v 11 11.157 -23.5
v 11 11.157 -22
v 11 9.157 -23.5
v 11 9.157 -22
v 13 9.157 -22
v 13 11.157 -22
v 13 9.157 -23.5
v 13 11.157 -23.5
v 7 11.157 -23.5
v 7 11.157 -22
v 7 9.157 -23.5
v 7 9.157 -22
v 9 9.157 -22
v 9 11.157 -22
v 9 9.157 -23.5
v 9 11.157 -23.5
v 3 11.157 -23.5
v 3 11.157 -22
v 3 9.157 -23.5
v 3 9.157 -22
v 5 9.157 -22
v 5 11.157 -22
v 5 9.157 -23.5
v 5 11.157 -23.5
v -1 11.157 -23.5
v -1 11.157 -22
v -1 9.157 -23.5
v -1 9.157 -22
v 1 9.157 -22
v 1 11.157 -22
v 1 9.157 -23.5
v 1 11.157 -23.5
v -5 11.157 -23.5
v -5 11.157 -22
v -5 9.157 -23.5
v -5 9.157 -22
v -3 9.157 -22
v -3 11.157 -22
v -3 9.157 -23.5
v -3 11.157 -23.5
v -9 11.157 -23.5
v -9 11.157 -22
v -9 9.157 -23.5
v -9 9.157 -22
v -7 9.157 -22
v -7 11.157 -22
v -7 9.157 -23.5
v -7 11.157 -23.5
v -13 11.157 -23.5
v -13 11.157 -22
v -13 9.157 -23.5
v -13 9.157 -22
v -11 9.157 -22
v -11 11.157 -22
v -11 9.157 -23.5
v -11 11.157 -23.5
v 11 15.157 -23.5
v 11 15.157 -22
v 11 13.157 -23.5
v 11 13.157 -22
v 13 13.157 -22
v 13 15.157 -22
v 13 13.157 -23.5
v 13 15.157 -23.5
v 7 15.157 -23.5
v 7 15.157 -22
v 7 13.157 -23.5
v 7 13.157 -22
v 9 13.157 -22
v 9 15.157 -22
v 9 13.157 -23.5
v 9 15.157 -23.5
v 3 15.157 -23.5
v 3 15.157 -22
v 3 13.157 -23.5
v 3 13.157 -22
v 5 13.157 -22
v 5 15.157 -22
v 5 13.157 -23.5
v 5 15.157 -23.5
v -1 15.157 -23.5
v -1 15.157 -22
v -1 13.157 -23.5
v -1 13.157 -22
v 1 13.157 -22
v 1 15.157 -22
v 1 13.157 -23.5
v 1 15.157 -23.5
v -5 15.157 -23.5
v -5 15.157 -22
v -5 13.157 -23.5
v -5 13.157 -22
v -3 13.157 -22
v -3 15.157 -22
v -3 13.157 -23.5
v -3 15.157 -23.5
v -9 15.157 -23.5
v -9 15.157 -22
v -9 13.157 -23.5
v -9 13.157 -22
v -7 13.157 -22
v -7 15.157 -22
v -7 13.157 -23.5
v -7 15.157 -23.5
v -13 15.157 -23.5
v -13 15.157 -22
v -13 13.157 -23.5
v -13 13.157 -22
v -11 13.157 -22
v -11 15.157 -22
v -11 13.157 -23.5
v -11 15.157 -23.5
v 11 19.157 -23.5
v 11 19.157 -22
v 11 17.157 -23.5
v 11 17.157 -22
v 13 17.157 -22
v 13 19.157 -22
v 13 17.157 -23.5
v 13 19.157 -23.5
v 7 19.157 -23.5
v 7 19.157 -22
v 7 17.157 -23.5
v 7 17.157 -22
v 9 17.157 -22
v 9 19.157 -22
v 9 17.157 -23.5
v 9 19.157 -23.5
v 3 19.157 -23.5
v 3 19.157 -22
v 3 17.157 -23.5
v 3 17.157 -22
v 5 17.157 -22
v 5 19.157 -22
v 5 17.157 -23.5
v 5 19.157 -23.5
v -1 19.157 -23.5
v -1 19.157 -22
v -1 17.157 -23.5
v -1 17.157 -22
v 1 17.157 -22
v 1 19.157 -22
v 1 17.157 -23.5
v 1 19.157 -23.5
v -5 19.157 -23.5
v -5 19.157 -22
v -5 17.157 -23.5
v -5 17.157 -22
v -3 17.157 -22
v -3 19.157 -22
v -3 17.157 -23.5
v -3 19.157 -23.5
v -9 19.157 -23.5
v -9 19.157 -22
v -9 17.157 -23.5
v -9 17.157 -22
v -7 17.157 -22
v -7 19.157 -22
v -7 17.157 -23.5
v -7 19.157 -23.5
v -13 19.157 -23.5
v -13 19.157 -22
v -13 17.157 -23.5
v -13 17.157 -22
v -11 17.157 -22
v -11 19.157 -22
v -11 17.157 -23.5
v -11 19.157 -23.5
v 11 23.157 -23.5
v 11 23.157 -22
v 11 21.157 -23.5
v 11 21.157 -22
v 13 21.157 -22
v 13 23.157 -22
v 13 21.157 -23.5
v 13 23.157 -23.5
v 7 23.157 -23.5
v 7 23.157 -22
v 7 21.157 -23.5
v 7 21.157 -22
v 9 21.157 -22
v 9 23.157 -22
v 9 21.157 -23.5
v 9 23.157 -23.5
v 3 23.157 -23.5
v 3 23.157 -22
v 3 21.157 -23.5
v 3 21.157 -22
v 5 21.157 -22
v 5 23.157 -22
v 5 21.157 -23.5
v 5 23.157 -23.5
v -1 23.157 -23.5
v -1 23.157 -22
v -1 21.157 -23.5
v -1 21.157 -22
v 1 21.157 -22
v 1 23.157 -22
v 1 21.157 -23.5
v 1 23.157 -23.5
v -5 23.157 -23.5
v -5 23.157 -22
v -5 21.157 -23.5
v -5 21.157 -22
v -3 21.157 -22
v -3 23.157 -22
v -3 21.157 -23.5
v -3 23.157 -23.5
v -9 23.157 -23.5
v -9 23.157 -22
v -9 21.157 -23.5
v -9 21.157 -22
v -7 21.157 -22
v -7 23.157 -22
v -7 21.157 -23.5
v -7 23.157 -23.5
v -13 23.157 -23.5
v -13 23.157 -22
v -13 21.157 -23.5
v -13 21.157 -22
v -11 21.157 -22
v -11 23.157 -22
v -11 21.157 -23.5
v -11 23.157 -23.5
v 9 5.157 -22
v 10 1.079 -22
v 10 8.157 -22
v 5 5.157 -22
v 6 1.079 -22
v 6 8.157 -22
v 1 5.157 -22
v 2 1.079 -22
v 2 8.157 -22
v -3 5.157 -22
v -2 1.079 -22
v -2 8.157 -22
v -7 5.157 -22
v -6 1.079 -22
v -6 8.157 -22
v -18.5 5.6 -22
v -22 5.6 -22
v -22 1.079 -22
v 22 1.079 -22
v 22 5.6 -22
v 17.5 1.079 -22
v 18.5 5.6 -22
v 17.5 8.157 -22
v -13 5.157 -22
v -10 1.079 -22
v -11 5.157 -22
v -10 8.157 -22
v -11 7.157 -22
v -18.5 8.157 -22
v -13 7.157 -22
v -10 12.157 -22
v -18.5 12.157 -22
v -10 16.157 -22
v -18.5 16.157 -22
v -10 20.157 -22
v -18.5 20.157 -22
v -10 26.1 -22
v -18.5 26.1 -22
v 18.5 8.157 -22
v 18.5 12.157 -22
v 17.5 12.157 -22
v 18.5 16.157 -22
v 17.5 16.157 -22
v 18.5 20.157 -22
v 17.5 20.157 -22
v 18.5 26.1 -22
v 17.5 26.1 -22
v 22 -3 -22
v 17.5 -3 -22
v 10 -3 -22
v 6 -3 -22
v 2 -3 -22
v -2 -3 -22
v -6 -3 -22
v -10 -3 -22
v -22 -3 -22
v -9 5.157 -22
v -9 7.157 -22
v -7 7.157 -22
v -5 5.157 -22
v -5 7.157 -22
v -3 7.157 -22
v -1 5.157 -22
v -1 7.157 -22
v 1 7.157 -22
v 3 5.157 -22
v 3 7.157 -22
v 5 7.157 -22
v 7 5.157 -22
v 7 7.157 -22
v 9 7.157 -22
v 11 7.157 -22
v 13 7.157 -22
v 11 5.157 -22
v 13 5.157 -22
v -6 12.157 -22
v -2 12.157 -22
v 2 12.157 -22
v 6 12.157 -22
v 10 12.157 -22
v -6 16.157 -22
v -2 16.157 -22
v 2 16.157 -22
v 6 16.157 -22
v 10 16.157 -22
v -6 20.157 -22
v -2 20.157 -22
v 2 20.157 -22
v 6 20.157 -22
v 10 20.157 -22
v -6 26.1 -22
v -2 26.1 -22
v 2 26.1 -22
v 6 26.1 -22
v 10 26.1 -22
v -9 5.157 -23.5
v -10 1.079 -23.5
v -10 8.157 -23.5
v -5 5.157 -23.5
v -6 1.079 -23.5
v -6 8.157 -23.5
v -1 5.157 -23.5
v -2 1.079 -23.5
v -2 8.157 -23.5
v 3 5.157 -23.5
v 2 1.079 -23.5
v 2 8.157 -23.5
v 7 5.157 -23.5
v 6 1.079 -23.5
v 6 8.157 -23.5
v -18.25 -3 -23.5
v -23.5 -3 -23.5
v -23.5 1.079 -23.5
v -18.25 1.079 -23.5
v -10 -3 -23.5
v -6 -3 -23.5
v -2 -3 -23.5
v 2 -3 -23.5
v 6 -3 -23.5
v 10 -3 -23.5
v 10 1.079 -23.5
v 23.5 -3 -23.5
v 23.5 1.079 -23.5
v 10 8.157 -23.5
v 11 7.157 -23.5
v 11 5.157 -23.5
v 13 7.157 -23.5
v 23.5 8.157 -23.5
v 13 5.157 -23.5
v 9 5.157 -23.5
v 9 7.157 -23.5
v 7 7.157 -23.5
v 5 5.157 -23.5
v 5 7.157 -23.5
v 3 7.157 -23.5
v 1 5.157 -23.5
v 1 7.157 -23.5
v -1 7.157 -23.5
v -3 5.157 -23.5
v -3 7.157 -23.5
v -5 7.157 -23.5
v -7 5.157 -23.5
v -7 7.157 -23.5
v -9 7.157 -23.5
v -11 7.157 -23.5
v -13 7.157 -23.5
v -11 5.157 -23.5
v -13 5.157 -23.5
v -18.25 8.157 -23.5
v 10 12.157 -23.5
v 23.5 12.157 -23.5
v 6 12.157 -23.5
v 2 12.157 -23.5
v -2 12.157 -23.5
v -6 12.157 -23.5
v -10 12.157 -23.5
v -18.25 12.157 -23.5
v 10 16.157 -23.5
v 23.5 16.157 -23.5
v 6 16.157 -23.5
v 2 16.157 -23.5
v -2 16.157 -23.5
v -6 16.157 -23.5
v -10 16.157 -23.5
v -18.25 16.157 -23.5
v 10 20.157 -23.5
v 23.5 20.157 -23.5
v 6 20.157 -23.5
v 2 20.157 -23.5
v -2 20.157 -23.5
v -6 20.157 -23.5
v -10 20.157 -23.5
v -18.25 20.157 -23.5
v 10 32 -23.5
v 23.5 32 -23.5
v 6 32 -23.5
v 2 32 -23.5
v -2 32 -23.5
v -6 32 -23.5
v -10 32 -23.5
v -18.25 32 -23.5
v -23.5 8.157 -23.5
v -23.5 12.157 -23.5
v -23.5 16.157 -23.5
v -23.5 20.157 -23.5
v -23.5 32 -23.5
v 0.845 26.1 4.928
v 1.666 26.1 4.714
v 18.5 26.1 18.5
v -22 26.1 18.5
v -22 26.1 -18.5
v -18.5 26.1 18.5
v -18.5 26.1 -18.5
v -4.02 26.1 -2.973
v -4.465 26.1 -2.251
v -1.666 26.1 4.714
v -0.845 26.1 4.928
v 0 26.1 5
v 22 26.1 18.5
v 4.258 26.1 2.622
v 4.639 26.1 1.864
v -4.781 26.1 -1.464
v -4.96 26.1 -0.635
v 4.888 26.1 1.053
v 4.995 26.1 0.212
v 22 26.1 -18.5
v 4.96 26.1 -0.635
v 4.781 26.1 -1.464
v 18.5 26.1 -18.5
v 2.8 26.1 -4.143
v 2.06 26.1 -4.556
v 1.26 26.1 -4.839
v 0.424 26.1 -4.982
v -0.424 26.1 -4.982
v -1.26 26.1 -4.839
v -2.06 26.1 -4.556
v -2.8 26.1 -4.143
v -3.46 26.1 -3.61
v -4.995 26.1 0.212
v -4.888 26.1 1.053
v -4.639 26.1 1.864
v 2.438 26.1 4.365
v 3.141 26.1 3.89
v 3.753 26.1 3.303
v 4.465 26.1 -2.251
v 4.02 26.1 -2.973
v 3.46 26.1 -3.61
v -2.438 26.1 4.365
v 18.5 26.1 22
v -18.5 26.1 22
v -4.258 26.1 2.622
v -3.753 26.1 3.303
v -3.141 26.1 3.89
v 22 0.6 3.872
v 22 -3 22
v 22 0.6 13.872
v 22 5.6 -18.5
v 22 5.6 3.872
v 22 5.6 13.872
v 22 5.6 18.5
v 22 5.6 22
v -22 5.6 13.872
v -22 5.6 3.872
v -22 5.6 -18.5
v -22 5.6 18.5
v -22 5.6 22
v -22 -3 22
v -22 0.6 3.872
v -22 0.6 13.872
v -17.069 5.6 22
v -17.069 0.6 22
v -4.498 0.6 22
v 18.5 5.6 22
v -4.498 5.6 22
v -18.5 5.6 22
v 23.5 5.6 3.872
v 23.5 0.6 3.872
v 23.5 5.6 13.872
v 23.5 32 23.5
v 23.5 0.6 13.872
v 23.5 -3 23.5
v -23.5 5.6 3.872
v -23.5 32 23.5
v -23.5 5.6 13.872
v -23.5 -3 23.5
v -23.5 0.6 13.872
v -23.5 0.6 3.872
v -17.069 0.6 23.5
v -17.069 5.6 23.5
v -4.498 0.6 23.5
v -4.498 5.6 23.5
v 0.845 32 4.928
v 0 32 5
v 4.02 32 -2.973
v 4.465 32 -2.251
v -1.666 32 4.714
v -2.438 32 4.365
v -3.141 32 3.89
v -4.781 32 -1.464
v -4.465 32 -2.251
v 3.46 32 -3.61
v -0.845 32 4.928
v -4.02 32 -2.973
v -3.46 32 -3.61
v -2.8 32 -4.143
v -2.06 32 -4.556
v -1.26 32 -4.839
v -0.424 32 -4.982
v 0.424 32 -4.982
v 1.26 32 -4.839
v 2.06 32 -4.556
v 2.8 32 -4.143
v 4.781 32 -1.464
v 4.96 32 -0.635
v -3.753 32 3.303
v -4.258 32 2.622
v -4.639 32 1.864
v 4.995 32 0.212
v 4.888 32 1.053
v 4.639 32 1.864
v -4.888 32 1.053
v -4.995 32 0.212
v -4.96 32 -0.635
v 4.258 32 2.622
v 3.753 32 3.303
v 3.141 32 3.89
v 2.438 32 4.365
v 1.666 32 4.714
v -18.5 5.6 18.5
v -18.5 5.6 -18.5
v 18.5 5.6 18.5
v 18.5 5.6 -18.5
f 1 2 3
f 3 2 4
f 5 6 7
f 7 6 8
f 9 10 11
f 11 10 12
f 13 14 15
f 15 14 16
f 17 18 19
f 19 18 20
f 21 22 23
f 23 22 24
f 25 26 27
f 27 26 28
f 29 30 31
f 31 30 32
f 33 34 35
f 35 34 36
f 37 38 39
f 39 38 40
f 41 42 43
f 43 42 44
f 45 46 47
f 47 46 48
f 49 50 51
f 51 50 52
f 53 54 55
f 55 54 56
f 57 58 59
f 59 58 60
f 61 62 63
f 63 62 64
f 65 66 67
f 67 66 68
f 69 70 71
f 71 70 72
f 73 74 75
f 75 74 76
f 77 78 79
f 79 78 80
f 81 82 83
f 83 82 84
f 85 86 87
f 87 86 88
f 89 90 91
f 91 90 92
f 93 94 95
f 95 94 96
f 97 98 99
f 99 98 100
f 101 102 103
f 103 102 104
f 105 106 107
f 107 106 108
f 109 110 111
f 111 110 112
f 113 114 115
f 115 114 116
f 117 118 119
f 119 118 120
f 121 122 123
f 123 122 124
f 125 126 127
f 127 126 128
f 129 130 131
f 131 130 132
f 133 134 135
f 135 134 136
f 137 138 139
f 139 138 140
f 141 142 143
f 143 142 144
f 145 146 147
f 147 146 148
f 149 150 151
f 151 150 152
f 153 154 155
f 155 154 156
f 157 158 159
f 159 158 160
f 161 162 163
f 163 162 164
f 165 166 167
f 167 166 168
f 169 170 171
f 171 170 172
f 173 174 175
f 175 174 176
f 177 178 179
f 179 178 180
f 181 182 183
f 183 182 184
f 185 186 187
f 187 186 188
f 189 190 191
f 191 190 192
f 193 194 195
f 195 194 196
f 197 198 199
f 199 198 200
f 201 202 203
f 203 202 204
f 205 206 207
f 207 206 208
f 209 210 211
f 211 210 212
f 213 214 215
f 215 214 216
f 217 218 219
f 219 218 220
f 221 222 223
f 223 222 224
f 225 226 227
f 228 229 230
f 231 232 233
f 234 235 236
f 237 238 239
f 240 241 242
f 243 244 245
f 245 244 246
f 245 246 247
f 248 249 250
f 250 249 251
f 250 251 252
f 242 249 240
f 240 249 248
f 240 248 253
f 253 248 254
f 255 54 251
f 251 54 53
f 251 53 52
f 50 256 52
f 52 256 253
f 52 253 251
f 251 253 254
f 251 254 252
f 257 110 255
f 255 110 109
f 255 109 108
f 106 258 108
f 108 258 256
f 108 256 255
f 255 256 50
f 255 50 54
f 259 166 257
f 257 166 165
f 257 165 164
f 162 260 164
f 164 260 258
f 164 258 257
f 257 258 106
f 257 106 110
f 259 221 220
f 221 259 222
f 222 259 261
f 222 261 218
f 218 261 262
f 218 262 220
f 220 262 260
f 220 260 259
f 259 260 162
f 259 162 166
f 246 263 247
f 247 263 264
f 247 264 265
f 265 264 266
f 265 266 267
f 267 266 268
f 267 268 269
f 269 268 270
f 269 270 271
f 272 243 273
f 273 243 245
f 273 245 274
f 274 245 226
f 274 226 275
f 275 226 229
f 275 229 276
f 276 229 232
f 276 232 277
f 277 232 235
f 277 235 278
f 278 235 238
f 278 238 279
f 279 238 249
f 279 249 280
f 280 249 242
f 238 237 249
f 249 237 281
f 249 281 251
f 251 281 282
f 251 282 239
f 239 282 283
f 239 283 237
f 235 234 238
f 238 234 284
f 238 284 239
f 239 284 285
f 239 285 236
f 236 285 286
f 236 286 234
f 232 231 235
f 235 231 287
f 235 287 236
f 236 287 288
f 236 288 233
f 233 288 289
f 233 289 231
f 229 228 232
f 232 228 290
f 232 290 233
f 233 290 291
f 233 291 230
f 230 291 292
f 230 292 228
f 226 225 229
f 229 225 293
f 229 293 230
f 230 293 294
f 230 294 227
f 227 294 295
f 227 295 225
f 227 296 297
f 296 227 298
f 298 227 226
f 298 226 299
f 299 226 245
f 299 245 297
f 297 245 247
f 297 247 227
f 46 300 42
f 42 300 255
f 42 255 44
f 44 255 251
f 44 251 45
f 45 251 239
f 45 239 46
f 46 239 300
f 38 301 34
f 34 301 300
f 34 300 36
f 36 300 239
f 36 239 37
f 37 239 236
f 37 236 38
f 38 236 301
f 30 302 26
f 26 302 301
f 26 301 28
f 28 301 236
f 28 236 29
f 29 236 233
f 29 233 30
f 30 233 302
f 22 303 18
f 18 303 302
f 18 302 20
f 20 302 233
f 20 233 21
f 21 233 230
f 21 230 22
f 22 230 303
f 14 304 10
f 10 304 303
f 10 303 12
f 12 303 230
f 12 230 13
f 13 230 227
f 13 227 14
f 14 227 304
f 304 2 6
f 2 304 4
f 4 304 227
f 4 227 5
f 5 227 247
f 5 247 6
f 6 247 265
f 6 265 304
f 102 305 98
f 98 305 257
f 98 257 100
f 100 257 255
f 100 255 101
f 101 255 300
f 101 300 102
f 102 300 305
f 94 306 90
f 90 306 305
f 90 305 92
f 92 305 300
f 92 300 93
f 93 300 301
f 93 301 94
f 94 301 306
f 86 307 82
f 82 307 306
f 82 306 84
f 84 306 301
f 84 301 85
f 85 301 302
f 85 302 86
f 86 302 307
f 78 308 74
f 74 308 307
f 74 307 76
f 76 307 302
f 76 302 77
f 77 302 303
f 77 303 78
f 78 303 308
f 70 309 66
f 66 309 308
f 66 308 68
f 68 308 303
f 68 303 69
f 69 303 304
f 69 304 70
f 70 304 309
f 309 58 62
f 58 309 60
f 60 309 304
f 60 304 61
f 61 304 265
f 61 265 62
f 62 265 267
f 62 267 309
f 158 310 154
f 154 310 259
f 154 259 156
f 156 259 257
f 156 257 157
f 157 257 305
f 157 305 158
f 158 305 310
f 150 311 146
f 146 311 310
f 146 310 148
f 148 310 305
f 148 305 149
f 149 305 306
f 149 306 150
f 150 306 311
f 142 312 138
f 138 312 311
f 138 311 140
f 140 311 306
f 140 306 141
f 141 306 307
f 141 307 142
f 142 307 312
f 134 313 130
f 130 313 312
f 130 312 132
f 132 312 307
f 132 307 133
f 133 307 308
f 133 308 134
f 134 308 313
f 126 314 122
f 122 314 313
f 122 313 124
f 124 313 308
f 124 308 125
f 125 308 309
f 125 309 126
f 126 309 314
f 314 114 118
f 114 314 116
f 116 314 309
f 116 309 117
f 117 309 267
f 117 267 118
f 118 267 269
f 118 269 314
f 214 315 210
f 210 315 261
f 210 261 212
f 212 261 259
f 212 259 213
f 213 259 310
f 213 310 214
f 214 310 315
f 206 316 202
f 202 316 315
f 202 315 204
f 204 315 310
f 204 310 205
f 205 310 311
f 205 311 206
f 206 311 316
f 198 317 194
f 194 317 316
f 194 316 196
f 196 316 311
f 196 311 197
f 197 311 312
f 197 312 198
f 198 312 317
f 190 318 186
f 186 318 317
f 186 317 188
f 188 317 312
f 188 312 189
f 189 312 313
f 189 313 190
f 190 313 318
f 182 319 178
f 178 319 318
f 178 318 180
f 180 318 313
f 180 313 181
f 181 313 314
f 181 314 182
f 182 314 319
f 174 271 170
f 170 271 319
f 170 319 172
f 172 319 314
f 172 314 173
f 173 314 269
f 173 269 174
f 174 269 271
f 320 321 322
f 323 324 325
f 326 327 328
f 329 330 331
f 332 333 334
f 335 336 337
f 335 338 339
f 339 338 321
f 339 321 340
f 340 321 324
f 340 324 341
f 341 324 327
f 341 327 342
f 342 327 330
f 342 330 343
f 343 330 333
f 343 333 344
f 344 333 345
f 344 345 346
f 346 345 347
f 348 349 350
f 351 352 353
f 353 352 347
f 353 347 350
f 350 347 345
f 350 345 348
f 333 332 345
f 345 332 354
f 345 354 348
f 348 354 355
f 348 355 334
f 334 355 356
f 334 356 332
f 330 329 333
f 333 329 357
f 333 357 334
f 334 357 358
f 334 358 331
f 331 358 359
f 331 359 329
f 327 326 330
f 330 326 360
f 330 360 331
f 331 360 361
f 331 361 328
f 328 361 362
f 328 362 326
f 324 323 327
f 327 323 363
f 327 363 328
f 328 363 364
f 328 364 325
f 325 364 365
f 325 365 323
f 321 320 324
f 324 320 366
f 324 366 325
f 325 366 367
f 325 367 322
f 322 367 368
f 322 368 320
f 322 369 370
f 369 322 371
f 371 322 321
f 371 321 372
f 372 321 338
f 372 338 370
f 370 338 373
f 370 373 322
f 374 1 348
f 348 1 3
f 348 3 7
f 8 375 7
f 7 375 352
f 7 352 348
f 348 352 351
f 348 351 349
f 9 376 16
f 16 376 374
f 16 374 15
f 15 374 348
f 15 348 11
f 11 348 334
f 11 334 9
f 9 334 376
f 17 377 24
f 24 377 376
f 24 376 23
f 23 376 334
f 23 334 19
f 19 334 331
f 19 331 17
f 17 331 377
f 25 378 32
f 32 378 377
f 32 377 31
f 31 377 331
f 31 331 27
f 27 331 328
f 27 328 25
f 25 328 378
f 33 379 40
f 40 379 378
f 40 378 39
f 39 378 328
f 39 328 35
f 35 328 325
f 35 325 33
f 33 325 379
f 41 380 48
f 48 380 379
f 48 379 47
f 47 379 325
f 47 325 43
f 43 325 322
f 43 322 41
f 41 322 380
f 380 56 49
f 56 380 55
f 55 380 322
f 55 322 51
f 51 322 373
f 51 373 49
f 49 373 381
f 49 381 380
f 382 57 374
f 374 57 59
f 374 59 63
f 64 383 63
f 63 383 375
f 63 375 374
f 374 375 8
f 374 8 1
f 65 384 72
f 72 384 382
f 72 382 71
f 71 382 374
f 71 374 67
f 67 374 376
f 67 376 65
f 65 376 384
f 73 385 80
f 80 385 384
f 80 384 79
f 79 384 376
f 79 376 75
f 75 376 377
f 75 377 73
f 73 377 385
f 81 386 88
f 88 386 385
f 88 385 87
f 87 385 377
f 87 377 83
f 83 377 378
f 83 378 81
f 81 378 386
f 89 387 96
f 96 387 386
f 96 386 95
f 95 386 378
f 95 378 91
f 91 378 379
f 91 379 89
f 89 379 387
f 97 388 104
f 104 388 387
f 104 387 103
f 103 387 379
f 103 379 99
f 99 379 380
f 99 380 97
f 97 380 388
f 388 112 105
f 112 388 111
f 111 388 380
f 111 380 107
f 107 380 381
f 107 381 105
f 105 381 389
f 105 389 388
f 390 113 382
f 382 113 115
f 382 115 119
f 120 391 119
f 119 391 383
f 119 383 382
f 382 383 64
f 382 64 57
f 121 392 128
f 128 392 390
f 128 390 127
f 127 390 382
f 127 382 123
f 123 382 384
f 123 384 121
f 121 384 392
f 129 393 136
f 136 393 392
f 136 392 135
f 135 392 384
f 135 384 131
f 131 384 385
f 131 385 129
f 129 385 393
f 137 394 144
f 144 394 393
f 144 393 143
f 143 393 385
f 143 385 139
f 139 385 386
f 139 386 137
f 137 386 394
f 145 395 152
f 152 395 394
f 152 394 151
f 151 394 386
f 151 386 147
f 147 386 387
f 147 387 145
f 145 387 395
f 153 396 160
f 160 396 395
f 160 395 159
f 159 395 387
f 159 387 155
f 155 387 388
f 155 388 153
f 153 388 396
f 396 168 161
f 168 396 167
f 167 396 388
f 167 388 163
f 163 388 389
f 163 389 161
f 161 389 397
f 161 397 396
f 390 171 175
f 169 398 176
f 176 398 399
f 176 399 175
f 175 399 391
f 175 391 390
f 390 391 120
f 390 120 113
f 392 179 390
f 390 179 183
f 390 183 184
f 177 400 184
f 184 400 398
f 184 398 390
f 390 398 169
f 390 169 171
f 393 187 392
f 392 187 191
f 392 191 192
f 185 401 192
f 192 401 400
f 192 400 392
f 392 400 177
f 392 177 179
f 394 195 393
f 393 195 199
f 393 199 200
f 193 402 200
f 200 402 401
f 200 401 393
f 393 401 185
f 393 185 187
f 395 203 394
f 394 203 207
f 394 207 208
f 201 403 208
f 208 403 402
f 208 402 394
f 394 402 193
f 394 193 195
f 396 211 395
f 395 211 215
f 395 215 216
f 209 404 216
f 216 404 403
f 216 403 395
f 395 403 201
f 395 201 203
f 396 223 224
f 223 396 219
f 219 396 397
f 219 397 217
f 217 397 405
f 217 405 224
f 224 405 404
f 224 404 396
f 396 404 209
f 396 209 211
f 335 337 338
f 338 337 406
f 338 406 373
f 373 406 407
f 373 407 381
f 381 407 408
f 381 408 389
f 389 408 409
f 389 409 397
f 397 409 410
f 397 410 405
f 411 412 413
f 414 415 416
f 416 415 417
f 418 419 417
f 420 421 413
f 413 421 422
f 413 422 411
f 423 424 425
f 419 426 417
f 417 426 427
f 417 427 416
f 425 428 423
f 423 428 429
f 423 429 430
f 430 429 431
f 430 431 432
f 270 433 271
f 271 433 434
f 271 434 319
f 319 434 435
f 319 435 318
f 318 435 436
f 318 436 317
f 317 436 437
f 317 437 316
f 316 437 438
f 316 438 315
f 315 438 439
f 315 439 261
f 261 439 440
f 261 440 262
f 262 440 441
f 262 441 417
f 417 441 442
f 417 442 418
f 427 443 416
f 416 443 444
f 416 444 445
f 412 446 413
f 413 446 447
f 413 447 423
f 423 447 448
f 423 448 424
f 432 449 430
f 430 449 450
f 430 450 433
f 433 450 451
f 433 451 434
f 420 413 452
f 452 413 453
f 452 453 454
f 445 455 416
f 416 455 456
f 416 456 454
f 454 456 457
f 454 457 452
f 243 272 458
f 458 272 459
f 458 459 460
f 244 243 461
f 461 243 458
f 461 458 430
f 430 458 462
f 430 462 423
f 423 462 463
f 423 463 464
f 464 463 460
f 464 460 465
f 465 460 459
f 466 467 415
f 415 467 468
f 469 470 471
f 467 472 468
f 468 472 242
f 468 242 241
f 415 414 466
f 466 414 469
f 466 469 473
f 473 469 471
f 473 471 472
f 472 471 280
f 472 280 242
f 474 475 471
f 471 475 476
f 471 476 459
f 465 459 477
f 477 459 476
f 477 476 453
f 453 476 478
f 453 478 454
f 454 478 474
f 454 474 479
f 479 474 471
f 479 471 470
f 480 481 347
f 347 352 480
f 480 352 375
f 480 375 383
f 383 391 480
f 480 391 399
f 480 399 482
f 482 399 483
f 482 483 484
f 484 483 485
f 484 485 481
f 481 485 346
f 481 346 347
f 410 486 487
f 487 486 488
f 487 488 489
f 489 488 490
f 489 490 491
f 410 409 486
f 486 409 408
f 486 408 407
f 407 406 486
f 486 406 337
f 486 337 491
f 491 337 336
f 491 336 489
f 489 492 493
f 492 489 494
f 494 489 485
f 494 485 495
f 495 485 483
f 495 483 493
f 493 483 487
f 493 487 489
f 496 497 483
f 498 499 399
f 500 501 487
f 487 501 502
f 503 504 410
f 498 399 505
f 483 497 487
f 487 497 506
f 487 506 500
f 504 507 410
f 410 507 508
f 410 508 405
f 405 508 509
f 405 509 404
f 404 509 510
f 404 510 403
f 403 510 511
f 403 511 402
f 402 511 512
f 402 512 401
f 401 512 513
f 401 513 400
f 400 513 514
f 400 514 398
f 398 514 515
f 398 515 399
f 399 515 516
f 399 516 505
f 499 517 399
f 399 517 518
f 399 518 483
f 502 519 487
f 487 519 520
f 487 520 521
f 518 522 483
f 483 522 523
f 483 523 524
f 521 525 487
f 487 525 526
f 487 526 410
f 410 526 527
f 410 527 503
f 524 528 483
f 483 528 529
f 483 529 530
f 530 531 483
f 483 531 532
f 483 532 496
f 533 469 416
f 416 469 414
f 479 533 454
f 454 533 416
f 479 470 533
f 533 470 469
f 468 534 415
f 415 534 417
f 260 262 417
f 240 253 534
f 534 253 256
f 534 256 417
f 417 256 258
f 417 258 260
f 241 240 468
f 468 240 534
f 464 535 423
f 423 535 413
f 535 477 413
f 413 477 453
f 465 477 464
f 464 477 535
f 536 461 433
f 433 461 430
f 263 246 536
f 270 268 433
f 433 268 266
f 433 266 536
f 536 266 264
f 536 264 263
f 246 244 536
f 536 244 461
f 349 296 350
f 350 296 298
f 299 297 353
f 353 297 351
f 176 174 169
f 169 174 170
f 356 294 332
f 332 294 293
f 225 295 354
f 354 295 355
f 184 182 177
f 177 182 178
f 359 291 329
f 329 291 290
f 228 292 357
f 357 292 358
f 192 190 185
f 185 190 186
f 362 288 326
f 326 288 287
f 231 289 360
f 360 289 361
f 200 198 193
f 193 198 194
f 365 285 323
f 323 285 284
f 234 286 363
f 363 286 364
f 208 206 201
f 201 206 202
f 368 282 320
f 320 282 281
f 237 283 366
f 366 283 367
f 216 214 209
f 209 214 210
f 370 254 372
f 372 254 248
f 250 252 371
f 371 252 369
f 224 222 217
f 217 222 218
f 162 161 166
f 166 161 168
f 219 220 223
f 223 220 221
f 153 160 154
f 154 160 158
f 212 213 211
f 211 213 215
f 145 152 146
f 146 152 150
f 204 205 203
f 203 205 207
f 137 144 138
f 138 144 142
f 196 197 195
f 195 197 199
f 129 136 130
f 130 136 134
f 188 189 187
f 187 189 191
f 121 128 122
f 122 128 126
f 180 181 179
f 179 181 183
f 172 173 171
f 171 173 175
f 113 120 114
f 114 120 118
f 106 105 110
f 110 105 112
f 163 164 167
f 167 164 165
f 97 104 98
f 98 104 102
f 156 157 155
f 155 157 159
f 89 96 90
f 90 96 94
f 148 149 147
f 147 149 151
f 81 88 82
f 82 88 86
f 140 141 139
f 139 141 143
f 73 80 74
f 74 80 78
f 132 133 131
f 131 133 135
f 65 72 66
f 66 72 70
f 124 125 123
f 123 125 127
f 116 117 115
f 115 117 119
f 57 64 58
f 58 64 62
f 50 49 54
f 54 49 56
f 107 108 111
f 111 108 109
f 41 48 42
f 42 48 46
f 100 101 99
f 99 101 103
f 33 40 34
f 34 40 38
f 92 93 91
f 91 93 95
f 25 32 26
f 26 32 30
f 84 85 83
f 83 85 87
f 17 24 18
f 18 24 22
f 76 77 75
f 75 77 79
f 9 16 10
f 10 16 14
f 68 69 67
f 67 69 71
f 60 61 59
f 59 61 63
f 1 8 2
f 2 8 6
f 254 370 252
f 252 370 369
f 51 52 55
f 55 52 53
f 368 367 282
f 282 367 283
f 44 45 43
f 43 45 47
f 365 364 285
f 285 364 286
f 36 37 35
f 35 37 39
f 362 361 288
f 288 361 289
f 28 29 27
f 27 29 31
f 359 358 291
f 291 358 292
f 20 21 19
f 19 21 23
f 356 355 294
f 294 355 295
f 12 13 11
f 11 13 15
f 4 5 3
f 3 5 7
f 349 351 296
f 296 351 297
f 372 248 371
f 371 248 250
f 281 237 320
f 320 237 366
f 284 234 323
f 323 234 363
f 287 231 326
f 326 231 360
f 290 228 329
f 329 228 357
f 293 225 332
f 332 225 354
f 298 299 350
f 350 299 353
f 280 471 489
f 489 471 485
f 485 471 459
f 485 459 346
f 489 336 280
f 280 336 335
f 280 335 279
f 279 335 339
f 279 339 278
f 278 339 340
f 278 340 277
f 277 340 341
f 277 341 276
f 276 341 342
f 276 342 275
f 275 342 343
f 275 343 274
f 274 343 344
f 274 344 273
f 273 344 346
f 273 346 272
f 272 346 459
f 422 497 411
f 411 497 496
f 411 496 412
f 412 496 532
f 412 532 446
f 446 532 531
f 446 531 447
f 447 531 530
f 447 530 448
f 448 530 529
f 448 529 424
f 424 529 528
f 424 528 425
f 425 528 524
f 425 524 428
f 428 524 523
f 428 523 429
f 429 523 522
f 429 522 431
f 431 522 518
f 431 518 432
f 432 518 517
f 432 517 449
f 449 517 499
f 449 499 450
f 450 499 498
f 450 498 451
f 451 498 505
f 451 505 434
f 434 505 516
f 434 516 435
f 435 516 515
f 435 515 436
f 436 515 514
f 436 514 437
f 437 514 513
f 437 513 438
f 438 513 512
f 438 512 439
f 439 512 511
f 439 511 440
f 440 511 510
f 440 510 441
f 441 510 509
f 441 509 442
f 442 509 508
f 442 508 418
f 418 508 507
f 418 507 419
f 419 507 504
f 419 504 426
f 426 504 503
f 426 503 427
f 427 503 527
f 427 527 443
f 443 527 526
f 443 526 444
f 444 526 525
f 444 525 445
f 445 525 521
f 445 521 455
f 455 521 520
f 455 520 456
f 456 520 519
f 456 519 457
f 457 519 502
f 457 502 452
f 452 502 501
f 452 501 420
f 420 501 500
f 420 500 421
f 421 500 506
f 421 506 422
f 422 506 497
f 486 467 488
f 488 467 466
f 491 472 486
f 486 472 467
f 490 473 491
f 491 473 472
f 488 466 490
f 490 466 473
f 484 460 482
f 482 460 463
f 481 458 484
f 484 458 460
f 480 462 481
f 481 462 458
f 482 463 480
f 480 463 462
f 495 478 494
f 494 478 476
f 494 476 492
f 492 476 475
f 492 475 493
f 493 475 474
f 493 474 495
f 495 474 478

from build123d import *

# Parameters (mm, degrees)
SKETCH1_W                                  = 47
SKETCH1_H                                  = 47
BOSS_EXTRUDE1_DEPTH                        = 32
SKETCH2_W                                  = 44
SKETCH2_H                                  = 44
CUT_EXTRUDE1_DEPTH                         = 26.1
SKETCH3_W                                  = 3.5
SKETCH3_H                                  = 3.5
BOSS_EXTRUDE2_DEPTH                        = 20.5
MIRROR1_AT_THE_SECOND_PLANE_COPY_1_SKETC_W = 3.5
MIRROR1_AT_THE_SECOND_PLANE_COPY_1_SKETC_H = 3.5
MIRROR1_AT_THE_SECOND_PLANE_COPY_1_DEPTH   = 20.5
CUT_EXTRUDE3_REACH                         = 63.524
SKETCH4_W                                  = 2
SKETCH4_H                                  = 20
LPATTERN1_COUNT                            = 7
LPATTERN1_PITCH                            = 4
BOSS_EXTRUDE4_START                        = -1.5
SKETCH8_W                                  = 26
SKETCH8_H                                  = 2
BOSS_EXTRUDE4_DEPTH                        = 1.5
LPATTERN2_COUNT                            = 5
LPATTERN2_PITCH                            = 4
SKETCH6_W                                  = 47
SKETCH6_H                                  = 47
SKETCH6_W_2                                = 44
SKETCH6_H_2                                = 44
BOSS_EXTRUDE5_DEPTH                        = 3
SKETCH7_R                                  = 5
CUT_EXTRUDE4_DEPTH                         = 10
SKETCH10_W                                 = 10
SKETCH10_H                                 = 5
CUT_EXTRUDE5_DEPTH                         = 62.524385409
SKETCH12_W                                 = 12.571328749
SKETCH12_H                                 = 5
CUT_EXTRUDE6_DEPTH                         = 10


with BuildPart() as part:
    # Sketch1 → Boss-Extrude1 (new body)
    with BuildSketch(Plane(origin=(0, 0, 0), x_dir=(1, 0, 0), z_dir=(0, 1, 0))):
        Rectangle(SKETCH1_W, SKETCH1_H)
    extrude(amount=BOSS_EXTRUDE1_DEPTH)

    # Sketch2 → Cut-Extrude1 (cut)
    with BuildSketch(Plane.XZ):
        Rectangle(SKETCH2_W, SKETCH2_H)
    extrude(amount=-CUT_EXTRUDE1_DEPTH, mode=Mode.SUBTRACT)

    # Sketch3 → Boss-Extrude2 (add)
    with BuildSketch(Plane.XZ.offset(-26.1)):
        with Locations((-20.25, 20.25)):
            Rectangle(SKETCH3_W, SKETCH3_H)
    boss_extrude2 = extrude(amount=BOSS_EXTRUDE2_DEPTH)

    # Mirror1: Boss-Extrude2 across plane
    add(boss_extrude2.mirror(Plane(origin=(0, 0, 0), x_dir=(0, 0, 1), z_dir=(1, 0, 0))))

    # Mirror1 at the second plane: Boss-Extrude2 across plane
    add(boss_extrude2.mirror(Plane.XY))

    # Mirror1 at the second plane copy 1 sketc → Mirror1 at the second plane copy 1 (add)
    with BuildSketch(Plane(origin=(0, 26.1, 0), x_dir=(-1, 0, 0), z_dir=(0, -1, 0))):
        with Locations((-20.25, 20.25)):
            Rectangle(MIRROR1_AT_THE_SECOND_PLANE_COPY_1_SKETC_W, MIRROR1_AT_THE_SECOND_PLANE_COPY_1_SKETC_H)
    extrude(amount=MIRROR1_AT_THE_SECOND_PLANE_COPY_1_DEPTH)

    # Sketch4 → Cut-Extrude3 (cut, up to next)
    with BuildSketch(Plane(origin=(0, 0, -23.5), x_dir=(-1, 0, 0), z_dir=(0, 0, -1)), mode=Mode.PRIVATE) as cut_extrude3_sk1:
        with Locations((-12, 13.157296847)):
            Rectangle(SKETCH4_W, SKETCH4_H)
    cut_extrude3_tool1 = extrude(cut_extrude3_sk1.sketch, amount=-CUT_EXTRUDE3_REACH, mode=Mode.PRIVATE) & part.part
    cut_extrude3 = cut_extrude3_tool1.solids().sort_by_distance((12, 13.157297, -23.5))[0]
    add(cut_extrude3, mode=Mode.SUBTRACT)

    # LPattern1: Cut-Extrude3 ×7
    with Locations(*[(-i * LPATTERN1_PITCH, 0, 0) for i in range(1, LPATTERN1_COUNT)]):
        add(cut_extrude3, mode=Mode.SUBTRACT)

    # Sketch8 → Boss-Extrude4 (add)
    with BuildSketch(Plane(origin=(0, 0, -23.5), x_dir=(-1, 0, 0), z_dir=(0, 0, -1)).offset(BOSS_EXTRUDE4_START)):
        with Locations((0, 20.157296847)):
            Rectangle(SKETCH8_W, SKETCH8_H)
    boss_extrude4 = extrude(amount=BOSS_EXTRUDE4_DEPTH)

    # LPattern2: Boss-Extrude4 ×5
    with Locations(*[(0, -i * LPATTERN2_PITCH, 0) for i in range(1, LPATTERN2_COUNT)]):
        add(boss_extrude4)

    # Sketch6 → Boss-Extrude5 (add)
    with BuildSketch(Plane.XZ):
        Rectangle(SKETCH6_W, SKETCH6_H)
        Rectangle(SKETCH6_W_2, SKETCH6_H_2, mode=Mode.SUBTRACT)
    extrude(amount=BOSS_EXTRUDE5_DEPTH)

    # Sketch7 → Cut-Extrude4 (cut)
    with BuildSketch(Plane(origin=(0, 32, 0), x_dir=(1, 0, 0), z_dir=(0, 1, 0))):
        with Locations(Location((0, 0, 0), (0, 0, 270))):
            Circle(SKETCH7_R)
    extrude(amount=-CUT_EXTRUDE4_DEPTH, mode=Mode.SUBTRACT)

    # Sketch10 → Cut-Extrude5 (cut, through all)
    with BuildSketch(Plane.ZY.offset(23.5)):
        with Locations((8.871811033, 3.1)):
            Rectangle(SKETCH10_W, SKETCH10_H)
    extrude(amount=-CUT_EXTRUDE5_DEPTH, mode=Mode.SUBTRACT)

    # Sketch12 → Cut-Extrude6 (cut)
    with BuildSketch(Plane.XY.offset(23.5)):
        with Locations((-10.783165608, 3.1)):
            Rectangle(SKETCH12_W, SKETCH12_H)
    extrude(amount=-CUT_EXTRUDE6_DEPTH, mode=Mode.SUBTRACT)


solid = part.part
